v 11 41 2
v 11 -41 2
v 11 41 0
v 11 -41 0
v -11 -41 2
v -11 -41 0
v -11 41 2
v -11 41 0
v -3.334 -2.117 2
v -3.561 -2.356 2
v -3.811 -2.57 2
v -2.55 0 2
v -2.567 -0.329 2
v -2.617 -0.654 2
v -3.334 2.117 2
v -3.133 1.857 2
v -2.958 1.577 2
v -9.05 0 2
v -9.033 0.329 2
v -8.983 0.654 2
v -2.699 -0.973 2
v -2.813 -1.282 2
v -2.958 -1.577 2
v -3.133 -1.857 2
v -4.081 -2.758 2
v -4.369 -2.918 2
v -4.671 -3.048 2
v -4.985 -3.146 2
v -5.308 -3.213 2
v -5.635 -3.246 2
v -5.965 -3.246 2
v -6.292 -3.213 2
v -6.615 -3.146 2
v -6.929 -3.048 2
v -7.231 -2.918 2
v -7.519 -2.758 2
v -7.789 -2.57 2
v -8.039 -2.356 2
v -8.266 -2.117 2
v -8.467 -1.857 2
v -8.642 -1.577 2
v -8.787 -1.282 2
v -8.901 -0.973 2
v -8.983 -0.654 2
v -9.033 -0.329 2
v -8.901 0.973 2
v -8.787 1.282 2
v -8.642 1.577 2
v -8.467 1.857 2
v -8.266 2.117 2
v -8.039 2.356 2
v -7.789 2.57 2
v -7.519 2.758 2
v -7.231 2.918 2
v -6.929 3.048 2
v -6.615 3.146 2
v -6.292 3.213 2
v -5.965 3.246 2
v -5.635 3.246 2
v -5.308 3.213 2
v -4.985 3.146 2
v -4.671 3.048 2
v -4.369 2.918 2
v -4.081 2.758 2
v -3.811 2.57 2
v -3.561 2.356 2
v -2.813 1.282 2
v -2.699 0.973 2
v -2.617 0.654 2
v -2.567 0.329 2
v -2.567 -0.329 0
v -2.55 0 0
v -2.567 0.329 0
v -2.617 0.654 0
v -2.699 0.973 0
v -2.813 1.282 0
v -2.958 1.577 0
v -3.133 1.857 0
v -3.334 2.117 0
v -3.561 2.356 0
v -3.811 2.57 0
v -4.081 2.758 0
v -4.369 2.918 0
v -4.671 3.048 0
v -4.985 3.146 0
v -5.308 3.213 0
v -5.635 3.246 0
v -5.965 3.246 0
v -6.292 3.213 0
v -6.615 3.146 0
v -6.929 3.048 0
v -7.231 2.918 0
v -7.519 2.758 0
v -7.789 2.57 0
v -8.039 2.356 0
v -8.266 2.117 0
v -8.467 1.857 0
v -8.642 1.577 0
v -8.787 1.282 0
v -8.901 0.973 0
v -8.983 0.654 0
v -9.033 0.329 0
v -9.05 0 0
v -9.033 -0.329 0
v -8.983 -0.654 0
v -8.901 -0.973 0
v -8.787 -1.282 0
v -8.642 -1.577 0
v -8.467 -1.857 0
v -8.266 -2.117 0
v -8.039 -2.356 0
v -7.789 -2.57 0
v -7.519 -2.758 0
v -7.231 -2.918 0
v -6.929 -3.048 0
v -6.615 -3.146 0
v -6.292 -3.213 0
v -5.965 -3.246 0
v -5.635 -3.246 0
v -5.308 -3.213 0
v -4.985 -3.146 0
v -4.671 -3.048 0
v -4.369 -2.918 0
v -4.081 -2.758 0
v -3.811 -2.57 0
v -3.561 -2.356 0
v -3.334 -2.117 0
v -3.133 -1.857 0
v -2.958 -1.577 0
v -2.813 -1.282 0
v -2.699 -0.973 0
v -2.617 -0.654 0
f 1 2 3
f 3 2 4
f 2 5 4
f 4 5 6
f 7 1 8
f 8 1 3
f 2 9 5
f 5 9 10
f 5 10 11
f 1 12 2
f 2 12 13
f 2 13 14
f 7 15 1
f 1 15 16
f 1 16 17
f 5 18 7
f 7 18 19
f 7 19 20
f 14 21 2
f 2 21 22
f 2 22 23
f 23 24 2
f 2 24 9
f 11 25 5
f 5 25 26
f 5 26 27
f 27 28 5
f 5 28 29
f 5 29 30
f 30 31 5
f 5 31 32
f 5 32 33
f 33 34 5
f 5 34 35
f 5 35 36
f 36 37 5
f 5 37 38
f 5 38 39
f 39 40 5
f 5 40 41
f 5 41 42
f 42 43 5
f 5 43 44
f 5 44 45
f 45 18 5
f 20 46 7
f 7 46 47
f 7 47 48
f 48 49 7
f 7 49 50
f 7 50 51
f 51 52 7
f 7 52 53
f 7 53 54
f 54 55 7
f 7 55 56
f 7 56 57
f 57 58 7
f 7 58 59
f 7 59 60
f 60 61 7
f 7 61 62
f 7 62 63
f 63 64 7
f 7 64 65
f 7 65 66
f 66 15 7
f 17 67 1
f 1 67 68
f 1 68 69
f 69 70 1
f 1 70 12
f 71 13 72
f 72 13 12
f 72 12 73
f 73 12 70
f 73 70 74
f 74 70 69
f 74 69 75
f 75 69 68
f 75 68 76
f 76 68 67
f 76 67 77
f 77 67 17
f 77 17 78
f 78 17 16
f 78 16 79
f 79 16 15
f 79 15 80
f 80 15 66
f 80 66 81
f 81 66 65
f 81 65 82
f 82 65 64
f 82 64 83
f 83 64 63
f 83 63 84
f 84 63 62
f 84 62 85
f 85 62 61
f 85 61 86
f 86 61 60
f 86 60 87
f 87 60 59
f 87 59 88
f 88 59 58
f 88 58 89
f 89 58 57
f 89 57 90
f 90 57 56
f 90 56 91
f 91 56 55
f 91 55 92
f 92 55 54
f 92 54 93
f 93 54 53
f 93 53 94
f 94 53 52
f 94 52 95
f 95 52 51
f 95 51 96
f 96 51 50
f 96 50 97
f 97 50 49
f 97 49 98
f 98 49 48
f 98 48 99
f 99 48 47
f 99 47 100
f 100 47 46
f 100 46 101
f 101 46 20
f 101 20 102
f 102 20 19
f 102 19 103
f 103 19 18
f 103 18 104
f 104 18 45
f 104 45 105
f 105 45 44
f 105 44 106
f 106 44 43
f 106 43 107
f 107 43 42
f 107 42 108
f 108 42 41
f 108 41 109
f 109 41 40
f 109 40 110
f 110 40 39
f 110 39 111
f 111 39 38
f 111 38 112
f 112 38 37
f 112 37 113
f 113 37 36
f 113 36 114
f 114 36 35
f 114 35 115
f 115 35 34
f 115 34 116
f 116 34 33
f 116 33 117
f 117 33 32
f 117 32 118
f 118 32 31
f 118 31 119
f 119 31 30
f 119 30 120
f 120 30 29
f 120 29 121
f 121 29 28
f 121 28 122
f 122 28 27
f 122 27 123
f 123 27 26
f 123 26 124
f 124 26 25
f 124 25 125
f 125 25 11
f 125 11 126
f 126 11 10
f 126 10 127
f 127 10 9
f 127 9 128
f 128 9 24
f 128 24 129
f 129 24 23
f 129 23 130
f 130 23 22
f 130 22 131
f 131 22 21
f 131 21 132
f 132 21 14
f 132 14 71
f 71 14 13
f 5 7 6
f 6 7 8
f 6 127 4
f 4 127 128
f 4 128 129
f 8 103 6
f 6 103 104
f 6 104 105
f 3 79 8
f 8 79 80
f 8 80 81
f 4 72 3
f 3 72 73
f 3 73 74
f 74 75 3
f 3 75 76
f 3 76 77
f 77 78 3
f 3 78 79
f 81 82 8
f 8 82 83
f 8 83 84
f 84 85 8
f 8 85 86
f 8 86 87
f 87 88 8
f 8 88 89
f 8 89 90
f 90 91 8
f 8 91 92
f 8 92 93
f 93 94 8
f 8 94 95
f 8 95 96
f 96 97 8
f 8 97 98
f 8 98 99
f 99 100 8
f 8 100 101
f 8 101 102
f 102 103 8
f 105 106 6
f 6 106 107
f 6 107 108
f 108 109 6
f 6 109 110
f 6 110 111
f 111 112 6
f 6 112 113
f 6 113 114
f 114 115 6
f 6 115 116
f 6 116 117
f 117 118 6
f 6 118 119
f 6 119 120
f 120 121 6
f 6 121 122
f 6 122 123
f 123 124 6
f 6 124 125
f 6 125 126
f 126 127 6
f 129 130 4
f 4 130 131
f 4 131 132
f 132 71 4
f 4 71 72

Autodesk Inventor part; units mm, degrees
ref_plane "YZ Plane" through (0, 0, 0) normal (1, 0, 0) x (0, 1, 0)
ref_plane "XZ Plane" through (0, 0, 0) normal (0, 1, 0) x (-1, 0, 0)
ref_plane "XY Plane" through (0, 0, 0) normal (0, 0, 1) x (1, 0, 0)
sketch "Sketch1" plane through (0, 0, 0) normal (0, 0, 1) x (1, 0, 0)
  line L0 (-11, 43) -> (13, 43)
  line L1 (13, 43) -> (13, -43)
  line L2 (13, -43) -> (-11, -43)
  line L3 (-11, -43) -> (-11, 43)
  point P0 (0, 0)
  dimension "d0" = 24
  dimension "d1" = 86
  dimension "d2" = 43
  dimension "d3" = 11
extrude "Extrusion1" add sketch "Sketch1" along normal blind 2
sketch "Sketch2" plane through (0, 0, 2) normal (0, 0, 1) x (1, 0, 0)
  circle A0 centre (-5.8, 0) radius 3.25
  line L0 (13, -43) -> (13, 43) projected
  point P0 (0, 0)
  dimension "d6" = 6.5
  dimension "d7" = 18.8
extrude "Extrusion2" cut sketch "Sketch2" against normal blind 2
sketch "Sketch3" plane through (0, 0, 2) normal (0, 0, 1) x (1, 0, 0)
  line L0 (13, 43) -> (-11, 43) projected
  line L1 (13, -43) -> (13, 43) projected
  line L2 (-11, 43) -> (13, 43)
  line L3 (13, 43) -> (13, 41)
  line L4 (13, 41) -> (-11, 41)
  line L5 (-11, 41) -> (-11, 43)
  line L6 (-11, -43) -> (13, -43)
  line L7 (13, -43) -> (13, -41)
  line L8 (13, -41) -> (-11, -41)
  line L9 (-11, -41) -> (-11, -43)
  line L10 (13, -41) -> (11, -41)
  line L11 (11, -41) -> (11, 41)
  line L12 (11, 41) -> (13, 41)
  line L13 (13, 41) -> (13, -41)
  line L14 (-11, 43) -> (-11, -43) projected
  line L15 (-11, -43) -> (13, -43) projected
  point P0 (0, 0)
  dimension "d10" = 2
  dimension "d11" = 2
  dimension "d12" = 2
extrude "Extrusion3" cut sketch "Sketch3" against normal blind 2 contours L1 L4 L5 L0 | L1 L8 L11 L4 | L1 L6 L9 L8
properties part number "top-1"
